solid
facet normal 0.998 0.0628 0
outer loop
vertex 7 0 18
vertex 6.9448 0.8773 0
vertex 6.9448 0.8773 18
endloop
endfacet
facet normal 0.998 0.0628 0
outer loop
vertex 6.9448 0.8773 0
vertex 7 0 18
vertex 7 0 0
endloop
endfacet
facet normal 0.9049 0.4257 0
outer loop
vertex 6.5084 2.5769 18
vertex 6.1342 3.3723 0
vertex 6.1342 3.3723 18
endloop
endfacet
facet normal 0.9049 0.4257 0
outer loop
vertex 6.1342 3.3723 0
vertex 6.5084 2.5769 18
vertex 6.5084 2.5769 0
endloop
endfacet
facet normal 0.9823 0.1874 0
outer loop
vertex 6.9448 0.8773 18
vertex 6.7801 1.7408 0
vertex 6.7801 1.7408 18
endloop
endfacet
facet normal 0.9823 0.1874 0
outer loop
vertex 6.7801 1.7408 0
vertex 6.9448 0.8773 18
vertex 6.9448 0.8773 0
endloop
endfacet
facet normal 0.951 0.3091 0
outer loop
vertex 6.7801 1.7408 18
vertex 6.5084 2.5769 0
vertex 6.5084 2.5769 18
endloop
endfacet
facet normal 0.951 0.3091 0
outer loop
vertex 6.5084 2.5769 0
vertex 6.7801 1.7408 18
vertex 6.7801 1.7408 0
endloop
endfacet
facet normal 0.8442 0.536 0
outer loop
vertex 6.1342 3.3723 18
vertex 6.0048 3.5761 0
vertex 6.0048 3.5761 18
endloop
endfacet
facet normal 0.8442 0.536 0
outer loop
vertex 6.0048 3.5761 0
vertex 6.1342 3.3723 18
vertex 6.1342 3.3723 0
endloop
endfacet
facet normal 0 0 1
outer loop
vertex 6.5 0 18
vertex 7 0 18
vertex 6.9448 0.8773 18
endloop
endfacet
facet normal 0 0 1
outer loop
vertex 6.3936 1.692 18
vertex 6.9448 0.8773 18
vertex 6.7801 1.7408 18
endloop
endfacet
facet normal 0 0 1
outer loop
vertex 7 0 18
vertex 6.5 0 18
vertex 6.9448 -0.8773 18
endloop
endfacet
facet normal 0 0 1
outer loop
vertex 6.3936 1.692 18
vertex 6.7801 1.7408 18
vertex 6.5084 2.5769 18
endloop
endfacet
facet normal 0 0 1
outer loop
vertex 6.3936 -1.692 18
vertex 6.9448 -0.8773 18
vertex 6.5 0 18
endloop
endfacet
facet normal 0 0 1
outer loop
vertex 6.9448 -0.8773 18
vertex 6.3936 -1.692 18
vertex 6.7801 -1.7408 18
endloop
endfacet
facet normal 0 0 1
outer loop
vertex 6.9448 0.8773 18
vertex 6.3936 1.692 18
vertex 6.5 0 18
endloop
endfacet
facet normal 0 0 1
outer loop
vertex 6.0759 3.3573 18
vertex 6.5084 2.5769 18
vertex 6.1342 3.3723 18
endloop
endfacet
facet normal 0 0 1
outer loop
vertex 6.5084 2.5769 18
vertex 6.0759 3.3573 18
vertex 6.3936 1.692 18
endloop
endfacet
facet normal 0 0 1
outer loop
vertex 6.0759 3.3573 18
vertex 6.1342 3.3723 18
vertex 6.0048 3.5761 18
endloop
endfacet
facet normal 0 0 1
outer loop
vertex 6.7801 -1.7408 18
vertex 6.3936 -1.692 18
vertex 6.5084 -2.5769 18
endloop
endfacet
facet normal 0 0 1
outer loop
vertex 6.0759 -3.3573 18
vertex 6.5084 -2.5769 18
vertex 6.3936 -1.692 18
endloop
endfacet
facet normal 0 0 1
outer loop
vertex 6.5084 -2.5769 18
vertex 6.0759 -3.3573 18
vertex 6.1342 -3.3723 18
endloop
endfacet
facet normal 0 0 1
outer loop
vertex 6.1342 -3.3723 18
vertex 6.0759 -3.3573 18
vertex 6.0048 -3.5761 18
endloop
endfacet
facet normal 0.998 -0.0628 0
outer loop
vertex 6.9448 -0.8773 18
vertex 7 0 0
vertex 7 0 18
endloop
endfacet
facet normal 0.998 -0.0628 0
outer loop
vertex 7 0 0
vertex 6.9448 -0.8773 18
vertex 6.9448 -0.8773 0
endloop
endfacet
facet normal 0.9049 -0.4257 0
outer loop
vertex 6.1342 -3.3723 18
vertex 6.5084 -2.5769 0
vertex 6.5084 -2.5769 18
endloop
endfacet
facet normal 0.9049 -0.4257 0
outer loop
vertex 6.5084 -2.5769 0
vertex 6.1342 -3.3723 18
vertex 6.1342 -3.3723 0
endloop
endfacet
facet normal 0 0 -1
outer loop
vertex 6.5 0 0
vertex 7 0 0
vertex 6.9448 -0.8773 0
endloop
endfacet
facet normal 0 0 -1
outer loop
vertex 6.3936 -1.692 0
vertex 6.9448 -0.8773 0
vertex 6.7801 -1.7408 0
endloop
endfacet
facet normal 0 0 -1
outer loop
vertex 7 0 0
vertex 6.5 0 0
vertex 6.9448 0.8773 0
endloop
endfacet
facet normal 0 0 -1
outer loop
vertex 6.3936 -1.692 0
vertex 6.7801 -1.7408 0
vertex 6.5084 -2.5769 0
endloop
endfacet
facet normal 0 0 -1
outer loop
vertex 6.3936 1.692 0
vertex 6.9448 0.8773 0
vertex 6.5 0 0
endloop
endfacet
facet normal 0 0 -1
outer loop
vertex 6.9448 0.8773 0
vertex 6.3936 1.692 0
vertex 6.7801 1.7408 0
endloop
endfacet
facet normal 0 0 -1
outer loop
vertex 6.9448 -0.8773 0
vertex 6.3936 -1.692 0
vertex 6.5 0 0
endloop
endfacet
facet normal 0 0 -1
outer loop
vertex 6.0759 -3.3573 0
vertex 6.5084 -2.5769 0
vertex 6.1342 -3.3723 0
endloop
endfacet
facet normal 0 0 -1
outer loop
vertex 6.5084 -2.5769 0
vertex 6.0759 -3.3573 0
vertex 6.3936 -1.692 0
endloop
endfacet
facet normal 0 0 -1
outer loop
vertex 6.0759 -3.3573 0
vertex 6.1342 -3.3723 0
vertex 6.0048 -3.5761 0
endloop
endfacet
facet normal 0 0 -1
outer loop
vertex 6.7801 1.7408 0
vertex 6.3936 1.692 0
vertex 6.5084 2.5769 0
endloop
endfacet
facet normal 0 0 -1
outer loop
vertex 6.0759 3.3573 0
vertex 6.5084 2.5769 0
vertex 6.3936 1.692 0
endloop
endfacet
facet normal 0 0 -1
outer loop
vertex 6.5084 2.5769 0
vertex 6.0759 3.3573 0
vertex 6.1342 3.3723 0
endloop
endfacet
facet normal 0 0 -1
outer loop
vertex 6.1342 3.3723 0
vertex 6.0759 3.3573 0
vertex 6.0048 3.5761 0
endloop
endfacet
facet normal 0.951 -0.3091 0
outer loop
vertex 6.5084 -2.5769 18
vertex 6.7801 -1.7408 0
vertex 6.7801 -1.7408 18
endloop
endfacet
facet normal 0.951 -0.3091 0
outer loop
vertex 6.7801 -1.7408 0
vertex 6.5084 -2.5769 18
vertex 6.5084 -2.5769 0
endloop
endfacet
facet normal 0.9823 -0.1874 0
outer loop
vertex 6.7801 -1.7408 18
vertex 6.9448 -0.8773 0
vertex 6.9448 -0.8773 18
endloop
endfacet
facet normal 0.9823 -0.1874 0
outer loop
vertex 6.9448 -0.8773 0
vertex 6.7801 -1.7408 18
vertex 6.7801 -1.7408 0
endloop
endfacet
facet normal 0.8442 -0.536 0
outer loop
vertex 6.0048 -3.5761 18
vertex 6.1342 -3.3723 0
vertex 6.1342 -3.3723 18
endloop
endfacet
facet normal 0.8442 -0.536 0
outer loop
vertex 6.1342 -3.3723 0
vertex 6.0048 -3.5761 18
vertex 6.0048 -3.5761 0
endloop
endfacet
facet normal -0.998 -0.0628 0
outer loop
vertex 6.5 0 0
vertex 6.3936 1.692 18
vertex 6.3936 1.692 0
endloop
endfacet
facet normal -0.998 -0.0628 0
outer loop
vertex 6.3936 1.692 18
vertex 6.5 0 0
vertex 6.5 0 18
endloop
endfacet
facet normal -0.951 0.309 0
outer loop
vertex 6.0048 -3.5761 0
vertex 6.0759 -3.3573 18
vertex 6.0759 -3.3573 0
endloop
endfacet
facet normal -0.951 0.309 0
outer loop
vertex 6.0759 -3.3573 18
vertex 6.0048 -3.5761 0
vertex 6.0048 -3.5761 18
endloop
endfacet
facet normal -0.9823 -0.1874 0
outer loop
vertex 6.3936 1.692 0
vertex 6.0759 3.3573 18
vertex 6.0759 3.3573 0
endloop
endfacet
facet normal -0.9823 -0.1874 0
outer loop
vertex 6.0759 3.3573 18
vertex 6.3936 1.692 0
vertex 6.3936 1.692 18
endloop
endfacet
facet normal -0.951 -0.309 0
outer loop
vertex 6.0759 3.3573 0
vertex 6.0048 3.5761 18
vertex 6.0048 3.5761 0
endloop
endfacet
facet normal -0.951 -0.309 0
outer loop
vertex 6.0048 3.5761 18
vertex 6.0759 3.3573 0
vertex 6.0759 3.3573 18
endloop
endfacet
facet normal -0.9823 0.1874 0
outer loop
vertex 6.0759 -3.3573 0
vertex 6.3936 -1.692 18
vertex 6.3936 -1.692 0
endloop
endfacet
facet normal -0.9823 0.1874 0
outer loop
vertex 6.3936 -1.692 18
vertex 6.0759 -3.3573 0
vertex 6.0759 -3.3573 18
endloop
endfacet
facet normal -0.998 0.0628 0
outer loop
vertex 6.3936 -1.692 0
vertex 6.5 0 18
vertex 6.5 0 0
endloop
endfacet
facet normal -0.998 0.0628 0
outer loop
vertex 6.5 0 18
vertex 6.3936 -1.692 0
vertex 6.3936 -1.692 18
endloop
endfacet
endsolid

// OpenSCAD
$fn = 50;


difference() {
	union() {
		cylinder(h = 18, r = 7.0000000000);
		translate(v = [-10.0000000000, 0, 0]) {
			cylinder(h = 18, r = 7.0000000000);
		}
	}
	union() {
		cylinder(h = 18, r = 3.2500000000);
		cylinder(h = 18, r = 1.8000000000);
		cylinder(h = 18, r = 1.8000000000);
		cylinder(h = 18, r = 1.8000000000);
		translate(v = [-14.5000000000, 0, 0]) {
			hull() {
				translate(v = [-3.7500000000, 0.0000000000, 0]) {
					cylinder(h = 18, r = 7.5000000000);
				}
				translate(v = [3.7500000000, 0.0000000000, 0]) {
					cylinder(h = 18, r = 7.5000000000);
				}
				translate(v = [-3.7500000000, -0.0000000000, 0]) {
					cylinder(h = 18, r = 7.5000000000);
				}
				translate(v = [3.7500000000, -0.0000000000, 0]) {
					cylinder(h = 18, r = 7.5000000000);
				}
			}
		}
		translate(v = [-7.0000000000, 0, 0.0000000000]) {
			cylinder(h = 18, r = 13.5000000000);
		}
	}
}
